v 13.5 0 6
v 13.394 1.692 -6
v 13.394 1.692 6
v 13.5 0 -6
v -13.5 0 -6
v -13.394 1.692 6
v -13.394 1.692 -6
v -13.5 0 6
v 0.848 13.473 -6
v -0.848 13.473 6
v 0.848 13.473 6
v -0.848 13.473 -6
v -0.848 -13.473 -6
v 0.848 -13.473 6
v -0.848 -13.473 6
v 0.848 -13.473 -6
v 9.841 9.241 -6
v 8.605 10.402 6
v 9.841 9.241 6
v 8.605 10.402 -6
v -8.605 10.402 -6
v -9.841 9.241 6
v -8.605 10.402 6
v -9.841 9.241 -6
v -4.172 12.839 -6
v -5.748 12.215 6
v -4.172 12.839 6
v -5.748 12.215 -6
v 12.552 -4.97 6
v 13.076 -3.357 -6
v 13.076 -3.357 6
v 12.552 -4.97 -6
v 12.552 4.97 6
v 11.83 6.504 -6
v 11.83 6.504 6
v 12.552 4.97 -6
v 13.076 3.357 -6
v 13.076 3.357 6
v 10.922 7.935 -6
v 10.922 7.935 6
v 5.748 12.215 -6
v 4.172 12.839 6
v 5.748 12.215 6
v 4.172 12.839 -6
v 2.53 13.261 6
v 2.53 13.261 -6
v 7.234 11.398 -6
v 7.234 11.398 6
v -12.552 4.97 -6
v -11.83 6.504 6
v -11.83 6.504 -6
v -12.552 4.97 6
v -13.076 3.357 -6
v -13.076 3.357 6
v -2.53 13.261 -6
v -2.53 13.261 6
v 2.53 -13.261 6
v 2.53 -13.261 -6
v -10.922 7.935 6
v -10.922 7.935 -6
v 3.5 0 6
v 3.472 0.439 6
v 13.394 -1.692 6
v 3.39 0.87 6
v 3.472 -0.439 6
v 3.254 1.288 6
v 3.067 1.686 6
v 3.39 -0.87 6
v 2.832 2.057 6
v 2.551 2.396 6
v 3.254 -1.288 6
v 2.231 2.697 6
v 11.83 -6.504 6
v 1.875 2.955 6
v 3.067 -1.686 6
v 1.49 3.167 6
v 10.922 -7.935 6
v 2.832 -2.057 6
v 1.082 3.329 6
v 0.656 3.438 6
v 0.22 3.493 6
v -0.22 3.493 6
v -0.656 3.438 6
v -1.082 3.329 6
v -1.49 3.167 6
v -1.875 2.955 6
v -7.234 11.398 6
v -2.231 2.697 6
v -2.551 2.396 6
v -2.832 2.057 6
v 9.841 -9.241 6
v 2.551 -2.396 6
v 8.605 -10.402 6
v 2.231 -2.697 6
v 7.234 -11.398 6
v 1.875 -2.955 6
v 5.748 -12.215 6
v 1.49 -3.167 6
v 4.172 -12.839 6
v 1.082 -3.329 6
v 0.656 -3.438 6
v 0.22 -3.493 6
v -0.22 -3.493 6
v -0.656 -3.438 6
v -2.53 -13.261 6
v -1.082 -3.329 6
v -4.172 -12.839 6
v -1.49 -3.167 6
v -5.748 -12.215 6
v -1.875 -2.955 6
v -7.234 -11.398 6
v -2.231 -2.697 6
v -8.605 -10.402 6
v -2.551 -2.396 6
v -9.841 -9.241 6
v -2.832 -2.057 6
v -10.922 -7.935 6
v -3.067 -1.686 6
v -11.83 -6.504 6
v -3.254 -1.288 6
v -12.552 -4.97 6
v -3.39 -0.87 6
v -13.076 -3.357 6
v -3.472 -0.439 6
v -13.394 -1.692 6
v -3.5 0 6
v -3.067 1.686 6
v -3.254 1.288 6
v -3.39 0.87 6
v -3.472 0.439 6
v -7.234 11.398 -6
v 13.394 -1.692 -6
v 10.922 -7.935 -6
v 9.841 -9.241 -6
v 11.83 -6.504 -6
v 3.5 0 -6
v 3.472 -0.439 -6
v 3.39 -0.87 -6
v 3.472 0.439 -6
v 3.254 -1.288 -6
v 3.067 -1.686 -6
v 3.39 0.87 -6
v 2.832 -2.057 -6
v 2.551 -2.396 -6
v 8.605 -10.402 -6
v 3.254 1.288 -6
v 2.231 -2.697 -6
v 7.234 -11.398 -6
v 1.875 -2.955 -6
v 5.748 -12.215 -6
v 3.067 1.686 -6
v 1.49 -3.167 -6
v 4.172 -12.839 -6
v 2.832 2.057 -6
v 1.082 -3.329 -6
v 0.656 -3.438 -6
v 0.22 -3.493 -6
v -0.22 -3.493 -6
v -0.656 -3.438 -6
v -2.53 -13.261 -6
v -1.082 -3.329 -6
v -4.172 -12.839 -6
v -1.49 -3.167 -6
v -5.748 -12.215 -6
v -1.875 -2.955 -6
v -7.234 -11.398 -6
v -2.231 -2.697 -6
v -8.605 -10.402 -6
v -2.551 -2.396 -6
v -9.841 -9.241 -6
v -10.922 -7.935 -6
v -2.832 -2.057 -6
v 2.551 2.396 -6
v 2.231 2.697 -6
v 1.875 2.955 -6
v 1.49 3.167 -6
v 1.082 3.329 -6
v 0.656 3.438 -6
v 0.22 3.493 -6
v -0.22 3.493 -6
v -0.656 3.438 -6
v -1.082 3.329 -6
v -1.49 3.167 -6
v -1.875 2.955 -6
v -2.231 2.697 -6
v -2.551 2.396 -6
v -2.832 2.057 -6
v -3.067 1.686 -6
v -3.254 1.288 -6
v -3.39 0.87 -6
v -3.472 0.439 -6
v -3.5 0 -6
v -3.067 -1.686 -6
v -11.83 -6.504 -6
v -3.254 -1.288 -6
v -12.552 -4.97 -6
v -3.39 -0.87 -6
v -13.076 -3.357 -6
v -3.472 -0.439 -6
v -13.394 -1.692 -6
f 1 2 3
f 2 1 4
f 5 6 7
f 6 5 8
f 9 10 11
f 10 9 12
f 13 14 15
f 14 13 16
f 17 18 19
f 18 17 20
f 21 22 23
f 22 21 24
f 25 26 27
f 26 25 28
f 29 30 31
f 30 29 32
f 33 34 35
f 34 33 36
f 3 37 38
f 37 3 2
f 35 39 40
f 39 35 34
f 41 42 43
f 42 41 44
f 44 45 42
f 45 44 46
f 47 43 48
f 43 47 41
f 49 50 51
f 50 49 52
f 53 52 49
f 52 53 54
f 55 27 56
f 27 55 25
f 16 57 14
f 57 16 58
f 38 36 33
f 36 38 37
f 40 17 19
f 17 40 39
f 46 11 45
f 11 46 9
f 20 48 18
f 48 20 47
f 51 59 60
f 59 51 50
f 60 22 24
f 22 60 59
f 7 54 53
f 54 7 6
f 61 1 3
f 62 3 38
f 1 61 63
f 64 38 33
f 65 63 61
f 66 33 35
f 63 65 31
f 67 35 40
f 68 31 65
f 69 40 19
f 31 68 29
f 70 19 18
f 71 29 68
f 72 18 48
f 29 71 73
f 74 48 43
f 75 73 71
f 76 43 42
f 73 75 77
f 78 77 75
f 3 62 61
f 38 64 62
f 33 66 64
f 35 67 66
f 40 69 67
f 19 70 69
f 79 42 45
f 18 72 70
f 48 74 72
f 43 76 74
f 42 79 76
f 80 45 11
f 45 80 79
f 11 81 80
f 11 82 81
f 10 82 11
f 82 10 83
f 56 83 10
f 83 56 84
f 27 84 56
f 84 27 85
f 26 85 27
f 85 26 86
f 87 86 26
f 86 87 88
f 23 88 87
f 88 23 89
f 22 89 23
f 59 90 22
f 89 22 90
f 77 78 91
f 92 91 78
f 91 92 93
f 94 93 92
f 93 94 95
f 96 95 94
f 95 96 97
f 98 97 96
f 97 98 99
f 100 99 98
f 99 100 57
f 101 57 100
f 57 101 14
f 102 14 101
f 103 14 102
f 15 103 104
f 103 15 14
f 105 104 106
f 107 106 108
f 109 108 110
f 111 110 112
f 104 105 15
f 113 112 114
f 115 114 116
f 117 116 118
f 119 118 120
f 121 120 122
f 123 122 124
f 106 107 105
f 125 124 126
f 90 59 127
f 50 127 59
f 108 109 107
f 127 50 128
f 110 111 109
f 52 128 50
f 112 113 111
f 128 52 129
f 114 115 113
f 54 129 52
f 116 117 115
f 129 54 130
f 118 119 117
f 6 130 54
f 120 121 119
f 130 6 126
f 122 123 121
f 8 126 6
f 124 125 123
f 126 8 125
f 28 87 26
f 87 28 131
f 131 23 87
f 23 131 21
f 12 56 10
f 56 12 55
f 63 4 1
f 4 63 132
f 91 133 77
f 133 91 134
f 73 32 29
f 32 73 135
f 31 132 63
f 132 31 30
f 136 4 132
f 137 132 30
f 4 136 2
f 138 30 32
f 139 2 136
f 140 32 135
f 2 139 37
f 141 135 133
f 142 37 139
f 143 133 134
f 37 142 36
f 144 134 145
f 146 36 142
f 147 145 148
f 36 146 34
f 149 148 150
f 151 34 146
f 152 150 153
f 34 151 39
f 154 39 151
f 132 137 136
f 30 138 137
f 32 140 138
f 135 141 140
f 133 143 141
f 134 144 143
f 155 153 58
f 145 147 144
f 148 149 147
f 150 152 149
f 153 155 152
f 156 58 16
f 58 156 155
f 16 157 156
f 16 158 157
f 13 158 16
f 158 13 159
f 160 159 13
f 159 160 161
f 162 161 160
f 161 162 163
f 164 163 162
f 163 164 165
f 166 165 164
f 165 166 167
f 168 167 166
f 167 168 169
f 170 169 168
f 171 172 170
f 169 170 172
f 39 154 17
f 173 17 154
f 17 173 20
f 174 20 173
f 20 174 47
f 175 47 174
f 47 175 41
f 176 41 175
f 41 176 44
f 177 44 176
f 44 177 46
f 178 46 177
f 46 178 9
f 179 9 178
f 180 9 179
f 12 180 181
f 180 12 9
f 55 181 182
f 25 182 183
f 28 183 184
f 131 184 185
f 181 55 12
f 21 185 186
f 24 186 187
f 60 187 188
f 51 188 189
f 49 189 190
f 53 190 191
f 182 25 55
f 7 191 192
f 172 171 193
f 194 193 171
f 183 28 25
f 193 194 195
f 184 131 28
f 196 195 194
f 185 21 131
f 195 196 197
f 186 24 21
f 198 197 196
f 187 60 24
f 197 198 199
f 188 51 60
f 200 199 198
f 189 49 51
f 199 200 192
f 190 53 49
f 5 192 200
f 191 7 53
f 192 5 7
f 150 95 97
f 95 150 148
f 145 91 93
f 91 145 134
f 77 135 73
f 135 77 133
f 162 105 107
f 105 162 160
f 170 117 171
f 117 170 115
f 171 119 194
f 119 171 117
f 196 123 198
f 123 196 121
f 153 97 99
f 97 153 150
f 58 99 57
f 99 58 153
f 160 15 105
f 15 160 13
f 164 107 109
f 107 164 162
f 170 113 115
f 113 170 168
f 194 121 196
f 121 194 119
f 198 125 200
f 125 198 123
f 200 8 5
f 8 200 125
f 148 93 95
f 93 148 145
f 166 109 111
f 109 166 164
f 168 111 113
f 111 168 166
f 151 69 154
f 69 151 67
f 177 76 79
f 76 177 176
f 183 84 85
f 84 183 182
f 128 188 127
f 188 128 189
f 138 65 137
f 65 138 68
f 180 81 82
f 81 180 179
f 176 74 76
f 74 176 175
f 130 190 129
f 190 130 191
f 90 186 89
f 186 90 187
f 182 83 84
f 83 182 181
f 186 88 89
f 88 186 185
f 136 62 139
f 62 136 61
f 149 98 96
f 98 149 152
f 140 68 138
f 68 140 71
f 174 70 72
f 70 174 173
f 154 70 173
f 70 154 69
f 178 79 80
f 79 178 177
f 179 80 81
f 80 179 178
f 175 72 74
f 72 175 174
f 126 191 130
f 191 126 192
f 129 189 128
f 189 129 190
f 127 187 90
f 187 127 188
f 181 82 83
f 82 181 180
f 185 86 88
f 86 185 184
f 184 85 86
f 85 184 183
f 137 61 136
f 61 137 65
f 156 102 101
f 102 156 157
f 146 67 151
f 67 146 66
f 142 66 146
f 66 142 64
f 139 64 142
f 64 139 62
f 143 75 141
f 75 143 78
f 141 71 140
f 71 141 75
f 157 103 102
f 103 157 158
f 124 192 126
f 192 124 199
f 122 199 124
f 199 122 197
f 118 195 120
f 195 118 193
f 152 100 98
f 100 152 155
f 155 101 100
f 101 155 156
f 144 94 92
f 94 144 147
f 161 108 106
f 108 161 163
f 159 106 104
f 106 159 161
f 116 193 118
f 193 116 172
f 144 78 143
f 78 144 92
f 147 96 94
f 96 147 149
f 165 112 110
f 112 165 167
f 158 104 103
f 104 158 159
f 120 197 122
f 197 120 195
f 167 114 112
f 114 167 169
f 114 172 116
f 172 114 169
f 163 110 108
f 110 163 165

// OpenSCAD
$fn = 50;


difference() {
	union() {
		translate(v = [0, 0, -6.0000000000]) {
			cylinder(h = 12, r = 13.5000000000);
		}
	}
	union() {
		translate(v = [0, 0, -100.0000000000]) {
			cylinder(h = 200, r = 3.5000000000);
		}
	}
}
